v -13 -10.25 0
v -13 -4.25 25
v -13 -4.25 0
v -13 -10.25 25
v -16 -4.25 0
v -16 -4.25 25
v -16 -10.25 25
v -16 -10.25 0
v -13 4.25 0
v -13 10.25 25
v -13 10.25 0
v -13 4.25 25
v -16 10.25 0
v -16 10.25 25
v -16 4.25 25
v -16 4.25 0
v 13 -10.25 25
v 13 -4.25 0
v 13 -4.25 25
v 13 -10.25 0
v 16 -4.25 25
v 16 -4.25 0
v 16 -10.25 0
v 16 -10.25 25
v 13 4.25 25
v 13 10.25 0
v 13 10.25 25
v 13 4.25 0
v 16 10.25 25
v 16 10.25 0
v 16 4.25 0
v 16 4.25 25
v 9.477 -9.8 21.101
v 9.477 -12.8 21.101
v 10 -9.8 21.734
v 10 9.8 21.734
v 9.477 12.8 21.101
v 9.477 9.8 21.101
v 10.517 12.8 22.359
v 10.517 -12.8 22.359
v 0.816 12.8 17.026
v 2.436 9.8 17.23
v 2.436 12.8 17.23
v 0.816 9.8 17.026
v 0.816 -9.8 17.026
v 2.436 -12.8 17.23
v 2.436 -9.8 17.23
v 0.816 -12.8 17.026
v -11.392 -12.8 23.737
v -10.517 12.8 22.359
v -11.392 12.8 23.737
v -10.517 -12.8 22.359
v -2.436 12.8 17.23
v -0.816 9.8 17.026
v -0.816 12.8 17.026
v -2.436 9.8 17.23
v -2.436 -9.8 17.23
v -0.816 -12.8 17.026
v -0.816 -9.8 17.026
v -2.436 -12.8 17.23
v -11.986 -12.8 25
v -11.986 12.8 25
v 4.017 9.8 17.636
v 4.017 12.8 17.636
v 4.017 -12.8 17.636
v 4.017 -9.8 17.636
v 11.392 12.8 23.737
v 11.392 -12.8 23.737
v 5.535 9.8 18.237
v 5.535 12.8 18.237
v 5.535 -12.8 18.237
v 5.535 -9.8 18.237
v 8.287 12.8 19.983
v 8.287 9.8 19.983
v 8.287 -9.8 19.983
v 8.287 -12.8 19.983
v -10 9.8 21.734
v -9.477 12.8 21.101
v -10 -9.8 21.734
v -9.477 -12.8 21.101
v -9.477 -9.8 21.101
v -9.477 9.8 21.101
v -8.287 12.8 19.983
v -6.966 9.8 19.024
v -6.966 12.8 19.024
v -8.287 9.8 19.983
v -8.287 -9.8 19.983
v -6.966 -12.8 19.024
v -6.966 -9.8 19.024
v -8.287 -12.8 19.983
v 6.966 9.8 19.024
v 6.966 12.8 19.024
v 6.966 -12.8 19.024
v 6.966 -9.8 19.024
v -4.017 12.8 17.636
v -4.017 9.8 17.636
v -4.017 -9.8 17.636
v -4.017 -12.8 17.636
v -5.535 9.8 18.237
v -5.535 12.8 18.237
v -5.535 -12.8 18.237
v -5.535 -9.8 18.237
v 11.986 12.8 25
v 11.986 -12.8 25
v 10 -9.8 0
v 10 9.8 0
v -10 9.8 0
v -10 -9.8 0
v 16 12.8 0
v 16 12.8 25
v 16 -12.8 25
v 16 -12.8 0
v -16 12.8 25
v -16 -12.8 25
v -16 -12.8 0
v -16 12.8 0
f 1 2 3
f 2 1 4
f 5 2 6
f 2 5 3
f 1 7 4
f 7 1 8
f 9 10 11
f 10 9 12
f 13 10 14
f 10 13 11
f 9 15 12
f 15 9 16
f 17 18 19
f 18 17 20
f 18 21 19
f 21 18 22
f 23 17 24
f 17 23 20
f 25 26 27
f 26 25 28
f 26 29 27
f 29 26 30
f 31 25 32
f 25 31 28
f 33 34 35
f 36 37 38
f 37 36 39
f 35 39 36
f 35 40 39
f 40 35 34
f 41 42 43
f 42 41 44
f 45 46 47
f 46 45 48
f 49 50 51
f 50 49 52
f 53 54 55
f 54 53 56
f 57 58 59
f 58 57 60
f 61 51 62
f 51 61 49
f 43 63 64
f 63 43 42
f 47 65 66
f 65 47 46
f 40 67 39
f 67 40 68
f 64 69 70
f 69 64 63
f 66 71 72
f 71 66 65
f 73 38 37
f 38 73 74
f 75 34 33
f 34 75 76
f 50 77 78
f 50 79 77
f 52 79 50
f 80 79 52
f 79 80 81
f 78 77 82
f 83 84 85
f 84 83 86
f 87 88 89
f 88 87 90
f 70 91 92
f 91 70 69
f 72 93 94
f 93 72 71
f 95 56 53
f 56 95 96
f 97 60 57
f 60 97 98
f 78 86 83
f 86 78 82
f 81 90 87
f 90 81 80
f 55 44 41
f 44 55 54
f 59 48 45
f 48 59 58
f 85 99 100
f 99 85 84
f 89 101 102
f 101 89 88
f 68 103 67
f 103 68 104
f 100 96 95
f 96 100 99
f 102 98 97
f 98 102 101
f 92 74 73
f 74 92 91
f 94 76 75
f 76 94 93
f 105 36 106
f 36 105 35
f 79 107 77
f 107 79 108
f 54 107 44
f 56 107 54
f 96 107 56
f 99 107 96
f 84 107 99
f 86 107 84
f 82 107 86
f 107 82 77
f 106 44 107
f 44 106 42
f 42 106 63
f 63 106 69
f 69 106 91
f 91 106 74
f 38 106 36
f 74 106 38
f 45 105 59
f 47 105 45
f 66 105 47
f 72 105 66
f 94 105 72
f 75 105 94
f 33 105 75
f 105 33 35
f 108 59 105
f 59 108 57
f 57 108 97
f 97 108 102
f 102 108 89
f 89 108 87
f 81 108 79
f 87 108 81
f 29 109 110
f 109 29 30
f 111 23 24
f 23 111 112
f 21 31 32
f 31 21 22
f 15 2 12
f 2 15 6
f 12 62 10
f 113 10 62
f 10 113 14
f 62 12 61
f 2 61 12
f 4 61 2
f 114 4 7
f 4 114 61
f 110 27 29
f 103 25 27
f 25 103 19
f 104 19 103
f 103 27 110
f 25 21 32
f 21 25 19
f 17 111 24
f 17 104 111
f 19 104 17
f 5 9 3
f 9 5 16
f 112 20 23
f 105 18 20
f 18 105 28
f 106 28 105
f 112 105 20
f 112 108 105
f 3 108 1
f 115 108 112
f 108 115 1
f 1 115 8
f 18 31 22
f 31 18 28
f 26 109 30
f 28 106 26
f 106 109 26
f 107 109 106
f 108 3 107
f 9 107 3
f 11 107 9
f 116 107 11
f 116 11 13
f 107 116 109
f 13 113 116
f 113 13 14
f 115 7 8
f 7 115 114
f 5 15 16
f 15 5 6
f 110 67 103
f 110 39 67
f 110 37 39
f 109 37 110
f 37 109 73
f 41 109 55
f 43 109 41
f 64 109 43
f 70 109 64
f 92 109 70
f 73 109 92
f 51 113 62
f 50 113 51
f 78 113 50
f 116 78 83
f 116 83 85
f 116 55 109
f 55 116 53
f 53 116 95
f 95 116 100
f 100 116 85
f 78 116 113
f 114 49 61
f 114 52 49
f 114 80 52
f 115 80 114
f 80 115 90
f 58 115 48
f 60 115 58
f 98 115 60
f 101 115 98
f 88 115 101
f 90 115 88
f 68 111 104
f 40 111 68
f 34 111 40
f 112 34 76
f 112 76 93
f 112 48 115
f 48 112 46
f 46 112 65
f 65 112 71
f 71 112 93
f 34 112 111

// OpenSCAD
motor_dia = 26;
mount_length = 25.6;
mount_height = 25;
overhang = 3;
motor_height = 30;
ziptie_width = 6;
ziptie_offset = 7.25;
wall_thickness = 3;

$fn = 50;

difference() {
    translate([0, 0, mount_height / 2])
    cube([motor_dia + 2 * overhang, mount_length, mount_height], center=true);

    union() {
        translate([0, 0, motor_height])
        rotate([90, 0, 0])
        cylinder(d=motor_dia, h=2 * mount_length, center=true);

        for(i = [-1, 1]) {
            for(j = [-1, 1]) {
                translate([i * (motor_dia / 2 + overhang), j * ziptie_offset, motor_height / 2])
                cube([2 * overhang, ziptie_width, 2 * motor_height], center=true);
            }
        }
        
    cube([motor_dia - 2 * wall_thickness, mount_length - 2 * wall_thickness, 2 * mount_height], center=true);
    }
}
